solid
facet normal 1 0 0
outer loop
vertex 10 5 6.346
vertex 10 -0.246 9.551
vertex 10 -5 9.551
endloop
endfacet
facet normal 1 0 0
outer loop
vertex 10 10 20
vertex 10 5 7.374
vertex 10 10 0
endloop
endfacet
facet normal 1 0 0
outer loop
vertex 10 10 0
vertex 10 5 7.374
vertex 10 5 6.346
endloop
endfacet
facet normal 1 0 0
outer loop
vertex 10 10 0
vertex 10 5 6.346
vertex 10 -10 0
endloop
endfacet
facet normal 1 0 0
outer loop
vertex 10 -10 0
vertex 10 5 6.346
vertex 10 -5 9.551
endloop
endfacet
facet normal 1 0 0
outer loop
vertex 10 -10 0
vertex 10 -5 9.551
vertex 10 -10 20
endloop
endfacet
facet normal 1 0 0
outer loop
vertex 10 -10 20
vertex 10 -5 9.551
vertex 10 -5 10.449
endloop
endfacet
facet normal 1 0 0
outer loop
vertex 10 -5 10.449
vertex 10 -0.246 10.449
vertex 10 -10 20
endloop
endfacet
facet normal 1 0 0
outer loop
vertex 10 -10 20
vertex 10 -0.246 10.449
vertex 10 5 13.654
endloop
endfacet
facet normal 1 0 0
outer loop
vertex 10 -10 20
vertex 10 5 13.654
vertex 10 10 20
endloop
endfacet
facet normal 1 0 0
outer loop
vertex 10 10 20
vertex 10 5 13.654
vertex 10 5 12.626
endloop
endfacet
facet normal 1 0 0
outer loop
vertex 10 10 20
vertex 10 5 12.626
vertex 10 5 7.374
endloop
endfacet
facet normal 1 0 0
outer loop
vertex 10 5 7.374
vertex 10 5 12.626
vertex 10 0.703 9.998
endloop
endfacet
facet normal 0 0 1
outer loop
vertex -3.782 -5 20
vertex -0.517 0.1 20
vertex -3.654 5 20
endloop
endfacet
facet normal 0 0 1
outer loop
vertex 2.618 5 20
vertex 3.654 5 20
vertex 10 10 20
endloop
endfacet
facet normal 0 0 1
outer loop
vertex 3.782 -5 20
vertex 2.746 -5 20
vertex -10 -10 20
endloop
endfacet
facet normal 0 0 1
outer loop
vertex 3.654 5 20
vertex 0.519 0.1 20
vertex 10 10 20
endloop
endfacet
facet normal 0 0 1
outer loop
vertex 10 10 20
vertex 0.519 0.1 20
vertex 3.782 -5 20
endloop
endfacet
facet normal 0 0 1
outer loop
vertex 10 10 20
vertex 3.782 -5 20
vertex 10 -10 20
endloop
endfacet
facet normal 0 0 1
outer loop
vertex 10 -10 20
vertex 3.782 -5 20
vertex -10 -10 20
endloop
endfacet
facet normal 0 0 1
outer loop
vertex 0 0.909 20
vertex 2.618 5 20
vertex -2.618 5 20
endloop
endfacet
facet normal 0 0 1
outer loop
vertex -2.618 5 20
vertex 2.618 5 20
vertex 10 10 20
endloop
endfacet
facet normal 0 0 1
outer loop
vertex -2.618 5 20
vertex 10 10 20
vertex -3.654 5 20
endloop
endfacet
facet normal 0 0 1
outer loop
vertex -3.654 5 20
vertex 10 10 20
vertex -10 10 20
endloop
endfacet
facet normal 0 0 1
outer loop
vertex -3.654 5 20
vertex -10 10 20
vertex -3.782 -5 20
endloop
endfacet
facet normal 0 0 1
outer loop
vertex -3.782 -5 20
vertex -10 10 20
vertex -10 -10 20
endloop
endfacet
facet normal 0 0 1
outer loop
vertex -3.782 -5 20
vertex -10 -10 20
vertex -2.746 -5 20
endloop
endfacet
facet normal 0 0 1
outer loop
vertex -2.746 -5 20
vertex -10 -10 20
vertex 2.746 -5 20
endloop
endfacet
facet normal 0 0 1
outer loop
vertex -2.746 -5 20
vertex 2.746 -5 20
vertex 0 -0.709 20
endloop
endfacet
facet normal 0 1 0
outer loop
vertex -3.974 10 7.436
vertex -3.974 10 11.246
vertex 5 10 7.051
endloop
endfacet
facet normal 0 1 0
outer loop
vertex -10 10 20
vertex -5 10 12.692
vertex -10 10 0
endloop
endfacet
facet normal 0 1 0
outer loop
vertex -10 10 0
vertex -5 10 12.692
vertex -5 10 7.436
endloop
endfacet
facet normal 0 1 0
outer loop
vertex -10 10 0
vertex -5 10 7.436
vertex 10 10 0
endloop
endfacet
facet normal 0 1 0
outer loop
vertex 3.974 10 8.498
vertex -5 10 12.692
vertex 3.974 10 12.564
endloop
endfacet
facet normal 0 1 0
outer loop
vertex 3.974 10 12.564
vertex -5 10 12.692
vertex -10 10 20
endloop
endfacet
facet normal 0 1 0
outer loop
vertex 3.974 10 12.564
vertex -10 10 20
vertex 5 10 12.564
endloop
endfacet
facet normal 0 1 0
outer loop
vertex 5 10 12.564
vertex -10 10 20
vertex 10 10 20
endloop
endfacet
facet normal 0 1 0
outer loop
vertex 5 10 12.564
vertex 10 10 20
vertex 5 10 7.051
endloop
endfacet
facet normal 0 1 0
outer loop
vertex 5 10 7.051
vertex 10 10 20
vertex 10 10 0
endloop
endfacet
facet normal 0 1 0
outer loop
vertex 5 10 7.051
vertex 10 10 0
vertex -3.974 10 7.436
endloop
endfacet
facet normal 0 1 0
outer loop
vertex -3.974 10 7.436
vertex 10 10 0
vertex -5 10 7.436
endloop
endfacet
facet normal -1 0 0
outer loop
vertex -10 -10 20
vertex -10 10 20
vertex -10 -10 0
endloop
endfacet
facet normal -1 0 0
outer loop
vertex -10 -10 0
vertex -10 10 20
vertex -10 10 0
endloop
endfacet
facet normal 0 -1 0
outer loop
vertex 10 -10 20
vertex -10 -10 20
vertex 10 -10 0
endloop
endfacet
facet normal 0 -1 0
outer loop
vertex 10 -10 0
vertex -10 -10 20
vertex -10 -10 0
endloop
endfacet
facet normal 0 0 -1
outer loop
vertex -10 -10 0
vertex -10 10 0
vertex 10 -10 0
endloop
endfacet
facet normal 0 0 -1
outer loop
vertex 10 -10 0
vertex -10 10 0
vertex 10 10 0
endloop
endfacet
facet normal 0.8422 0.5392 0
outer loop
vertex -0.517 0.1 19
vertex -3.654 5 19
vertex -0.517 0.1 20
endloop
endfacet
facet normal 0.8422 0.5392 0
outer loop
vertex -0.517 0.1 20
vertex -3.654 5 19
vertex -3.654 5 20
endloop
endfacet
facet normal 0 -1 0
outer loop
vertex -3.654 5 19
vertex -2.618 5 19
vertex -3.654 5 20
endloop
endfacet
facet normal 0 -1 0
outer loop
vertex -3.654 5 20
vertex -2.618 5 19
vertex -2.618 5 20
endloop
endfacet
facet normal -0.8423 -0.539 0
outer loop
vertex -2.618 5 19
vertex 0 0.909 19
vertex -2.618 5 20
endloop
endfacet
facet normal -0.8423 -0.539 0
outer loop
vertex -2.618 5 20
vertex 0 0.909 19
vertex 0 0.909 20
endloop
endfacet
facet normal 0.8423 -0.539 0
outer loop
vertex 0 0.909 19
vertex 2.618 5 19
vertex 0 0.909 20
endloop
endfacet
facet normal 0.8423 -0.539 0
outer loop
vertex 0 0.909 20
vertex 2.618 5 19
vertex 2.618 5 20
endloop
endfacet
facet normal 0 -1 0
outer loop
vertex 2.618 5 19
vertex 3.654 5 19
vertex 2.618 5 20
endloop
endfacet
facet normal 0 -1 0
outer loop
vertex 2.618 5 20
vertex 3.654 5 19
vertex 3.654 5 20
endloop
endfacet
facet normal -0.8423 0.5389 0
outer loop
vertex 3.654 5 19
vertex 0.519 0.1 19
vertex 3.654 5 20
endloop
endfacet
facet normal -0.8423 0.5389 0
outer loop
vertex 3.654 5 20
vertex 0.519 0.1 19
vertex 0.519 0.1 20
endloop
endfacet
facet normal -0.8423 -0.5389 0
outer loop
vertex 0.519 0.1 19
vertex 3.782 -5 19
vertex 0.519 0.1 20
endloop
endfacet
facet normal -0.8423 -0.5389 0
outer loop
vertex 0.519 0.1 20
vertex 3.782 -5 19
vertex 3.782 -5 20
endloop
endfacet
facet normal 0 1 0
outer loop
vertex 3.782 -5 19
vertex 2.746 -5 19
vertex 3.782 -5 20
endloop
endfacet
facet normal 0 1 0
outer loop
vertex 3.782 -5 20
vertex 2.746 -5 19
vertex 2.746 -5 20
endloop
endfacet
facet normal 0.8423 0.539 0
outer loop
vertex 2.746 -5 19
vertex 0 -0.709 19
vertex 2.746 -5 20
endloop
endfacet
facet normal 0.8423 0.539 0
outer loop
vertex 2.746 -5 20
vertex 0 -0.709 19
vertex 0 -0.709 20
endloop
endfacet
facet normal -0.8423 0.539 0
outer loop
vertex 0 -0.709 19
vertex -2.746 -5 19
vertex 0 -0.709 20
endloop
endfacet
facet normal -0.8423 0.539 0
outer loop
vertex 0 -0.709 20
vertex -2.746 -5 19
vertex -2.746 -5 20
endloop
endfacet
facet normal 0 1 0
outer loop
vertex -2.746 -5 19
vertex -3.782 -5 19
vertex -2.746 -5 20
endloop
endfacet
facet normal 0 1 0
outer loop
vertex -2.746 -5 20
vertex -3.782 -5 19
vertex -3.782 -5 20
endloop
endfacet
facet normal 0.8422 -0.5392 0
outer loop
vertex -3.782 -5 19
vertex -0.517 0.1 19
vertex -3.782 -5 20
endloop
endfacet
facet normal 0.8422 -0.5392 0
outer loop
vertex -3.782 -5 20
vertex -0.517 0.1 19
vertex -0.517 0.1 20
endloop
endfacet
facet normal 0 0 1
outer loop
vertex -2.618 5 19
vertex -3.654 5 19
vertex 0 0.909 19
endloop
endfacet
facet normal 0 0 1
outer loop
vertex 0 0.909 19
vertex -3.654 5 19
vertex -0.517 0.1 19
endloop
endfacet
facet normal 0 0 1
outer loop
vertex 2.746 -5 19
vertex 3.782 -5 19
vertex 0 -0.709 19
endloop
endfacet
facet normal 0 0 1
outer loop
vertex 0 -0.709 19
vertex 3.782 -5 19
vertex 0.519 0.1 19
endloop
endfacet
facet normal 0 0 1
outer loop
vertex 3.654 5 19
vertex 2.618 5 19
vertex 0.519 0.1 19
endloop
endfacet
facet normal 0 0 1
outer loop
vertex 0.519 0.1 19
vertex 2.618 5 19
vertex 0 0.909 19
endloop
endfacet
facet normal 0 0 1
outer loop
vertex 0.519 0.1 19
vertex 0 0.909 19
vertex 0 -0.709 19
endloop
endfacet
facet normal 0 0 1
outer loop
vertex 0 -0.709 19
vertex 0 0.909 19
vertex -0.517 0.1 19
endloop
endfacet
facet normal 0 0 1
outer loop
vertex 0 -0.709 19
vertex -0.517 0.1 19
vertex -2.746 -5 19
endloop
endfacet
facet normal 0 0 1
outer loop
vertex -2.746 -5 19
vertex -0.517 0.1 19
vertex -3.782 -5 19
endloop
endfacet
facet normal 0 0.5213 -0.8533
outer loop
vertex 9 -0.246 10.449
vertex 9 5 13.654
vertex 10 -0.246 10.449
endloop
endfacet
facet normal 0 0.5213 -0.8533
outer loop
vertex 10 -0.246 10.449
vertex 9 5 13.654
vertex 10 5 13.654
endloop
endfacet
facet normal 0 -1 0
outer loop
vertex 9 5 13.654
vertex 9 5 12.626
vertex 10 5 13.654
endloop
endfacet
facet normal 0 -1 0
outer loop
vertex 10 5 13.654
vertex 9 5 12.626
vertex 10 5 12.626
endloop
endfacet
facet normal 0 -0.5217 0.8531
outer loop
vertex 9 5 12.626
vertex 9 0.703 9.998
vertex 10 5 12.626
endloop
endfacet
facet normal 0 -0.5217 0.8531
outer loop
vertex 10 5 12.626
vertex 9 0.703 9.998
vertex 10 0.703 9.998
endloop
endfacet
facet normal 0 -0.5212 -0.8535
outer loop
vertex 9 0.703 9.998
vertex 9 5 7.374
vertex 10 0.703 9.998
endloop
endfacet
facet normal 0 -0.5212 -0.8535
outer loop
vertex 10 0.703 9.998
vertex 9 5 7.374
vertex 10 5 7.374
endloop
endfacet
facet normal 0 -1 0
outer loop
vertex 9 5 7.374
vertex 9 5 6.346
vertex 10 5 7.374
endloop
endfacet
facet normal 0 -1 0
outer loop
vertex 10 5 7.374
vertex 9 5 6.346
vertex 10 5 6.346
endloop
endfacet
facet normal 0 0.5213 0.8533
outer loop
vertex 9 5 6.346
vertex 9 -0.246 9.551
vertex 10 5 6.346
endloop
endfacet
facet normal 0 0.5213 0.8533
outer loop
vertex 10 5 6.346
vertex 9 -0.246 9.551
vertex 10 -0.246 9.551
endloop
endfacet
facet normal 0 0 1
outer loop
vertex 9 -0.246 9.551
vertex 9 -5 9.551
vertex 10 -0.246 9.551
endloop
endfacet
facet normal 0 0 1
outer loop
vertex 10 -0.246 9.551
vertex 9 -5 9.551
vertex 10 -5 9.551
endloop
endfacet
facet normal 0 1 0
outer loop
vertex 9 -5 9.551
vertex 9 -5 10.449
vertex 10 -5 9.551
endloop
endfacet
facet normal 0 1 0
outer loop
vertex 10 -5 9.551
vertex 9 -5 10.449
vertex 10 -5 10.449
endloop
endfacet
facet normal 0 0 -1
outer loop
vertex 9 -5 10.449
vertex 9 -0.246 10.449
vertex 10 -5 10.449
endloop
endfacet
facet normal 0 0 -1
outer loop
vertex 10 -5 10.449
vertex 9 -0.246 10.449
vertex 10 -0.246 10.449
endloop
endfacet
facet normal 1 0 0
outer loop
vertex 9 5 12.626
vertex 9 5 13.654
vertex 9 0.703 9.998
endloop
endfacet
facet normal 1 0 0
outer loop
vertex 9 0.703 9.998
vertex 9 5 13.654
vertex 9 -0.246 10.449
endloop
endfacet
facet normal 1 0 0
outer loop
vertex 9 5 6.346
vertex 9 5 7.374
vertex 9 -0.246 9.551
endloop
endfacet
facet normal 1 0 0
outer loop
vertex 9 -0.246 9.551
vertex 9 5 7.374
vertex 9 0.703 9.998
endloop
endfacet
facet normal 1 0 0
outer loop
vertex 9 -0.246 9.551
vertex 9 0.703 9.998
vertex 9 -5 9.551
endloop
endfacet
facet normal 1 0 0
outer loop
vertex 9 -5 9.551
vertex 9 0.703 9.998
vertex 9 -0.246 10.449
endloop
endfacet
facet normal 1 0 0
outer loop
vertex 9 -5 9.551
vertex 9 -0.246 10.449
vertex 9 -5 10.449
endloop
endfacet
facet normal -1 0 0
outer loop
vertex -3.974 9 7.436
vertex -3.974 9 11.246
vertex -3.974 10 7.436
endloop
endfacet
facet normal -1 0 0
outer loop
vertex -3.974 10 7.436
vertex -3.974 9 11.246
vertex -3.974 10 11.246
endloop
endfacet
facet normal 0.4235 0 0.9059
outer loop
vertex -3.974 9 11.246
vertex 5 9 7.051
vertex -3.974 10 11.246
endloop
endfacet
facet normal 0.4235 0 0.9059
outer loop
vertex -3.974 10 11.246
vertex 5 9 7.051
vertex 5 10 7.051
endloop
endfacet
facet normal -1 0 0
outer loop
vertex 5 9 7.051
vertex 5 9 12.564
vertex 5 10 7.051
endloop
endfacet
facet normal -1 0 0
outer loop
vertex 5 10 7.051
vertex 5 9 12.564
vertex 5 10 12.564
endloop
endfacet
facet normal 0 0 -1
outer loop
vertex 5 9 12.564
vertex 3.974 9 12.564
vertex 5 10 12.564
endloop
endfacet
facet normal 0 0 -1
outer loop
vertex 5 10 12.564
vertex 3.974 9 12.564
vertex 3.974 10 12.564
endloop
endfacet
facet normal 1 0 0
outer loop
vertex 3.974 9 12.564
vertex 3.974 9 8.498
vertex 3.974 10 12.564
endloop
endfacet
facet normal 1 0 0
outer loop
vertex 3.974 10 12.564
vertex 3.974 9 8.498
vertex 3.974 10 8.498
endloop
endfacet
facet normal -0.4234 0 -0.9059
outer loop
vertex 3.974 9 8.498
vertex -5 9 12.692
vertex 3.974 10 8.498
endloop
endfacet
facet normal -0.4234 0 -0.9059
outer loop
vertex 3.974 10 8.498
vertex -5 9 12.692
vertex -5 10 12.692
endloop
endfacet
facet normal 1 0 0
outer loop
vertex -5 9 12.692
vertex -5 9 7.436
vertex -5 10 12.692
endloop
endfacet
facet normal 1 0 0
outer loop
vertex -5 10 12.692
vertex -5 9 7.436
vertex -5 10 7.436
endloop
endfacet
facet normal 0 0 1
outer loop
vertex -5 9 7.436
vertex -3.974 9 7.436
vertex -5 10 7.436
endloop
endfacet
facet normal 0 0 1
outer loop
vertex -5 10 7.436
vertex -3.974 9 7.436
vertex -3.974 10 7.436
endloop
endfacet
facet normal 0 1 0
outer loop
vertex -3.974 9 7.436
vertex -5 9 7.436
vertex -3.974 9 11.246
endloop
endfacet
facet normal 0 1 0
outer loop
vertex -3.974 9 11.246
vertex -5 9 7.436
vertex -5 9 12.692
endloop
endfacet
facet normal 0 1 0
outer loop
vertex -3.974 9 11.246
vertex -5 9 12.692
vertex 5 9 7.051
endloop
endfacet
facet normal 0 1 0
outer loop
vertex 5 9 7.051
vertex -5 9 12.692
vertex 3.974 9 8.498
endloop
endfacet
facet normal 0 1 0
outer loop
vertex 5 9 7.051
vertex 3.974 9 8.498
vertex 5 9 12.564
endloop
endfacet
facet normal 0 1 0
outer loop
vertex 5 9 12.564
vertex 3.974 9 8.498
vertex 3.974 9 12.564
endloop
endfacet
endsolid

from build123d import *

# Parameters (mm, degrees)
SKETCH1_W           = 20
SKETCH1_H           = 20
BOSS_EXTRUDE1_DEPTH = 20
CUT_EXTRUDE_X_DEPTH = 1
CUT_EXTRUDE_Y_DEPTH = 1
CUT_EXTRUDE_Z_DEPTH = 1


with BuildPart() as part:
    # Sketch1 → Boss-Extrude1 (new body)
    with BuildSketch(Plane.XY):
        Rectangle(SKETCH1_W, SKETCH1_H)
    extrude(amount=BOSS_EXTRUDE1_DEPTH)

    # Sketch2 → Cut-Extrude X (cut)
    with BuildSketch(Plane.XY.offset(20)):
        Polygon((-3.653846154, 5), (-2.618189103, 5), (0, 0.909455128), (2.618189103, 5), (3.653846154, 5), (0.518830128, 0.100160256), (3.782051282, -5), (2.746394231, -5), (0, -0.709134615), (-2.746394231, -5), (-3.782051282, -5), (-0.516826923, 0.100160256), align=None)
    extrude(amount=-CUT_EXTRUDE_X_DEPTH, mode=Mode.SUBTRACT)

    # Sketch3 → Cut-Extrude Y (cut)
    with BuildSketch(Plane(origin=(10, 0, 0), x_dir=(0, 0, -1), z_dir=(1, 0, 0))):
        Polygon((-13.653846154, 5), (-12.626201923, 5), (-9.997996795, 0.703125), (-7.373798077, 5), (-6.346153846, 5), (-9.551282051, -0.246394231), (-9.551282051, -5), (-10.448717949, -5), (-10.448717949, -0.246394231), align=None)
    extrude(amount=-CUT_EXTRUDE_Y_DEPTH, mode=Mode.SUBTRACT)

    # Sketch4 → Cut-Extrude Z (cut)
    with BuildSketch(Plane(origin=(0, 10, 0), x_dir=(1, 0, 0), z_dir=(0, 1, 0))):
        Polygon((-3.974358974, -7.435897436), (-5, -7.435897436), (-5, -12.692307692), (3.974358974, -8.497596154), (3.974358974, -12.564102564), (5, -12.564102564), (5, -7.051282051), (-3.974358974, -11.24599359), align=None)
    extrude(amount=-CUT_EXTRUDE_Z_DEPTH, mode=Mode.SUBTRACT)


solid = part.part
